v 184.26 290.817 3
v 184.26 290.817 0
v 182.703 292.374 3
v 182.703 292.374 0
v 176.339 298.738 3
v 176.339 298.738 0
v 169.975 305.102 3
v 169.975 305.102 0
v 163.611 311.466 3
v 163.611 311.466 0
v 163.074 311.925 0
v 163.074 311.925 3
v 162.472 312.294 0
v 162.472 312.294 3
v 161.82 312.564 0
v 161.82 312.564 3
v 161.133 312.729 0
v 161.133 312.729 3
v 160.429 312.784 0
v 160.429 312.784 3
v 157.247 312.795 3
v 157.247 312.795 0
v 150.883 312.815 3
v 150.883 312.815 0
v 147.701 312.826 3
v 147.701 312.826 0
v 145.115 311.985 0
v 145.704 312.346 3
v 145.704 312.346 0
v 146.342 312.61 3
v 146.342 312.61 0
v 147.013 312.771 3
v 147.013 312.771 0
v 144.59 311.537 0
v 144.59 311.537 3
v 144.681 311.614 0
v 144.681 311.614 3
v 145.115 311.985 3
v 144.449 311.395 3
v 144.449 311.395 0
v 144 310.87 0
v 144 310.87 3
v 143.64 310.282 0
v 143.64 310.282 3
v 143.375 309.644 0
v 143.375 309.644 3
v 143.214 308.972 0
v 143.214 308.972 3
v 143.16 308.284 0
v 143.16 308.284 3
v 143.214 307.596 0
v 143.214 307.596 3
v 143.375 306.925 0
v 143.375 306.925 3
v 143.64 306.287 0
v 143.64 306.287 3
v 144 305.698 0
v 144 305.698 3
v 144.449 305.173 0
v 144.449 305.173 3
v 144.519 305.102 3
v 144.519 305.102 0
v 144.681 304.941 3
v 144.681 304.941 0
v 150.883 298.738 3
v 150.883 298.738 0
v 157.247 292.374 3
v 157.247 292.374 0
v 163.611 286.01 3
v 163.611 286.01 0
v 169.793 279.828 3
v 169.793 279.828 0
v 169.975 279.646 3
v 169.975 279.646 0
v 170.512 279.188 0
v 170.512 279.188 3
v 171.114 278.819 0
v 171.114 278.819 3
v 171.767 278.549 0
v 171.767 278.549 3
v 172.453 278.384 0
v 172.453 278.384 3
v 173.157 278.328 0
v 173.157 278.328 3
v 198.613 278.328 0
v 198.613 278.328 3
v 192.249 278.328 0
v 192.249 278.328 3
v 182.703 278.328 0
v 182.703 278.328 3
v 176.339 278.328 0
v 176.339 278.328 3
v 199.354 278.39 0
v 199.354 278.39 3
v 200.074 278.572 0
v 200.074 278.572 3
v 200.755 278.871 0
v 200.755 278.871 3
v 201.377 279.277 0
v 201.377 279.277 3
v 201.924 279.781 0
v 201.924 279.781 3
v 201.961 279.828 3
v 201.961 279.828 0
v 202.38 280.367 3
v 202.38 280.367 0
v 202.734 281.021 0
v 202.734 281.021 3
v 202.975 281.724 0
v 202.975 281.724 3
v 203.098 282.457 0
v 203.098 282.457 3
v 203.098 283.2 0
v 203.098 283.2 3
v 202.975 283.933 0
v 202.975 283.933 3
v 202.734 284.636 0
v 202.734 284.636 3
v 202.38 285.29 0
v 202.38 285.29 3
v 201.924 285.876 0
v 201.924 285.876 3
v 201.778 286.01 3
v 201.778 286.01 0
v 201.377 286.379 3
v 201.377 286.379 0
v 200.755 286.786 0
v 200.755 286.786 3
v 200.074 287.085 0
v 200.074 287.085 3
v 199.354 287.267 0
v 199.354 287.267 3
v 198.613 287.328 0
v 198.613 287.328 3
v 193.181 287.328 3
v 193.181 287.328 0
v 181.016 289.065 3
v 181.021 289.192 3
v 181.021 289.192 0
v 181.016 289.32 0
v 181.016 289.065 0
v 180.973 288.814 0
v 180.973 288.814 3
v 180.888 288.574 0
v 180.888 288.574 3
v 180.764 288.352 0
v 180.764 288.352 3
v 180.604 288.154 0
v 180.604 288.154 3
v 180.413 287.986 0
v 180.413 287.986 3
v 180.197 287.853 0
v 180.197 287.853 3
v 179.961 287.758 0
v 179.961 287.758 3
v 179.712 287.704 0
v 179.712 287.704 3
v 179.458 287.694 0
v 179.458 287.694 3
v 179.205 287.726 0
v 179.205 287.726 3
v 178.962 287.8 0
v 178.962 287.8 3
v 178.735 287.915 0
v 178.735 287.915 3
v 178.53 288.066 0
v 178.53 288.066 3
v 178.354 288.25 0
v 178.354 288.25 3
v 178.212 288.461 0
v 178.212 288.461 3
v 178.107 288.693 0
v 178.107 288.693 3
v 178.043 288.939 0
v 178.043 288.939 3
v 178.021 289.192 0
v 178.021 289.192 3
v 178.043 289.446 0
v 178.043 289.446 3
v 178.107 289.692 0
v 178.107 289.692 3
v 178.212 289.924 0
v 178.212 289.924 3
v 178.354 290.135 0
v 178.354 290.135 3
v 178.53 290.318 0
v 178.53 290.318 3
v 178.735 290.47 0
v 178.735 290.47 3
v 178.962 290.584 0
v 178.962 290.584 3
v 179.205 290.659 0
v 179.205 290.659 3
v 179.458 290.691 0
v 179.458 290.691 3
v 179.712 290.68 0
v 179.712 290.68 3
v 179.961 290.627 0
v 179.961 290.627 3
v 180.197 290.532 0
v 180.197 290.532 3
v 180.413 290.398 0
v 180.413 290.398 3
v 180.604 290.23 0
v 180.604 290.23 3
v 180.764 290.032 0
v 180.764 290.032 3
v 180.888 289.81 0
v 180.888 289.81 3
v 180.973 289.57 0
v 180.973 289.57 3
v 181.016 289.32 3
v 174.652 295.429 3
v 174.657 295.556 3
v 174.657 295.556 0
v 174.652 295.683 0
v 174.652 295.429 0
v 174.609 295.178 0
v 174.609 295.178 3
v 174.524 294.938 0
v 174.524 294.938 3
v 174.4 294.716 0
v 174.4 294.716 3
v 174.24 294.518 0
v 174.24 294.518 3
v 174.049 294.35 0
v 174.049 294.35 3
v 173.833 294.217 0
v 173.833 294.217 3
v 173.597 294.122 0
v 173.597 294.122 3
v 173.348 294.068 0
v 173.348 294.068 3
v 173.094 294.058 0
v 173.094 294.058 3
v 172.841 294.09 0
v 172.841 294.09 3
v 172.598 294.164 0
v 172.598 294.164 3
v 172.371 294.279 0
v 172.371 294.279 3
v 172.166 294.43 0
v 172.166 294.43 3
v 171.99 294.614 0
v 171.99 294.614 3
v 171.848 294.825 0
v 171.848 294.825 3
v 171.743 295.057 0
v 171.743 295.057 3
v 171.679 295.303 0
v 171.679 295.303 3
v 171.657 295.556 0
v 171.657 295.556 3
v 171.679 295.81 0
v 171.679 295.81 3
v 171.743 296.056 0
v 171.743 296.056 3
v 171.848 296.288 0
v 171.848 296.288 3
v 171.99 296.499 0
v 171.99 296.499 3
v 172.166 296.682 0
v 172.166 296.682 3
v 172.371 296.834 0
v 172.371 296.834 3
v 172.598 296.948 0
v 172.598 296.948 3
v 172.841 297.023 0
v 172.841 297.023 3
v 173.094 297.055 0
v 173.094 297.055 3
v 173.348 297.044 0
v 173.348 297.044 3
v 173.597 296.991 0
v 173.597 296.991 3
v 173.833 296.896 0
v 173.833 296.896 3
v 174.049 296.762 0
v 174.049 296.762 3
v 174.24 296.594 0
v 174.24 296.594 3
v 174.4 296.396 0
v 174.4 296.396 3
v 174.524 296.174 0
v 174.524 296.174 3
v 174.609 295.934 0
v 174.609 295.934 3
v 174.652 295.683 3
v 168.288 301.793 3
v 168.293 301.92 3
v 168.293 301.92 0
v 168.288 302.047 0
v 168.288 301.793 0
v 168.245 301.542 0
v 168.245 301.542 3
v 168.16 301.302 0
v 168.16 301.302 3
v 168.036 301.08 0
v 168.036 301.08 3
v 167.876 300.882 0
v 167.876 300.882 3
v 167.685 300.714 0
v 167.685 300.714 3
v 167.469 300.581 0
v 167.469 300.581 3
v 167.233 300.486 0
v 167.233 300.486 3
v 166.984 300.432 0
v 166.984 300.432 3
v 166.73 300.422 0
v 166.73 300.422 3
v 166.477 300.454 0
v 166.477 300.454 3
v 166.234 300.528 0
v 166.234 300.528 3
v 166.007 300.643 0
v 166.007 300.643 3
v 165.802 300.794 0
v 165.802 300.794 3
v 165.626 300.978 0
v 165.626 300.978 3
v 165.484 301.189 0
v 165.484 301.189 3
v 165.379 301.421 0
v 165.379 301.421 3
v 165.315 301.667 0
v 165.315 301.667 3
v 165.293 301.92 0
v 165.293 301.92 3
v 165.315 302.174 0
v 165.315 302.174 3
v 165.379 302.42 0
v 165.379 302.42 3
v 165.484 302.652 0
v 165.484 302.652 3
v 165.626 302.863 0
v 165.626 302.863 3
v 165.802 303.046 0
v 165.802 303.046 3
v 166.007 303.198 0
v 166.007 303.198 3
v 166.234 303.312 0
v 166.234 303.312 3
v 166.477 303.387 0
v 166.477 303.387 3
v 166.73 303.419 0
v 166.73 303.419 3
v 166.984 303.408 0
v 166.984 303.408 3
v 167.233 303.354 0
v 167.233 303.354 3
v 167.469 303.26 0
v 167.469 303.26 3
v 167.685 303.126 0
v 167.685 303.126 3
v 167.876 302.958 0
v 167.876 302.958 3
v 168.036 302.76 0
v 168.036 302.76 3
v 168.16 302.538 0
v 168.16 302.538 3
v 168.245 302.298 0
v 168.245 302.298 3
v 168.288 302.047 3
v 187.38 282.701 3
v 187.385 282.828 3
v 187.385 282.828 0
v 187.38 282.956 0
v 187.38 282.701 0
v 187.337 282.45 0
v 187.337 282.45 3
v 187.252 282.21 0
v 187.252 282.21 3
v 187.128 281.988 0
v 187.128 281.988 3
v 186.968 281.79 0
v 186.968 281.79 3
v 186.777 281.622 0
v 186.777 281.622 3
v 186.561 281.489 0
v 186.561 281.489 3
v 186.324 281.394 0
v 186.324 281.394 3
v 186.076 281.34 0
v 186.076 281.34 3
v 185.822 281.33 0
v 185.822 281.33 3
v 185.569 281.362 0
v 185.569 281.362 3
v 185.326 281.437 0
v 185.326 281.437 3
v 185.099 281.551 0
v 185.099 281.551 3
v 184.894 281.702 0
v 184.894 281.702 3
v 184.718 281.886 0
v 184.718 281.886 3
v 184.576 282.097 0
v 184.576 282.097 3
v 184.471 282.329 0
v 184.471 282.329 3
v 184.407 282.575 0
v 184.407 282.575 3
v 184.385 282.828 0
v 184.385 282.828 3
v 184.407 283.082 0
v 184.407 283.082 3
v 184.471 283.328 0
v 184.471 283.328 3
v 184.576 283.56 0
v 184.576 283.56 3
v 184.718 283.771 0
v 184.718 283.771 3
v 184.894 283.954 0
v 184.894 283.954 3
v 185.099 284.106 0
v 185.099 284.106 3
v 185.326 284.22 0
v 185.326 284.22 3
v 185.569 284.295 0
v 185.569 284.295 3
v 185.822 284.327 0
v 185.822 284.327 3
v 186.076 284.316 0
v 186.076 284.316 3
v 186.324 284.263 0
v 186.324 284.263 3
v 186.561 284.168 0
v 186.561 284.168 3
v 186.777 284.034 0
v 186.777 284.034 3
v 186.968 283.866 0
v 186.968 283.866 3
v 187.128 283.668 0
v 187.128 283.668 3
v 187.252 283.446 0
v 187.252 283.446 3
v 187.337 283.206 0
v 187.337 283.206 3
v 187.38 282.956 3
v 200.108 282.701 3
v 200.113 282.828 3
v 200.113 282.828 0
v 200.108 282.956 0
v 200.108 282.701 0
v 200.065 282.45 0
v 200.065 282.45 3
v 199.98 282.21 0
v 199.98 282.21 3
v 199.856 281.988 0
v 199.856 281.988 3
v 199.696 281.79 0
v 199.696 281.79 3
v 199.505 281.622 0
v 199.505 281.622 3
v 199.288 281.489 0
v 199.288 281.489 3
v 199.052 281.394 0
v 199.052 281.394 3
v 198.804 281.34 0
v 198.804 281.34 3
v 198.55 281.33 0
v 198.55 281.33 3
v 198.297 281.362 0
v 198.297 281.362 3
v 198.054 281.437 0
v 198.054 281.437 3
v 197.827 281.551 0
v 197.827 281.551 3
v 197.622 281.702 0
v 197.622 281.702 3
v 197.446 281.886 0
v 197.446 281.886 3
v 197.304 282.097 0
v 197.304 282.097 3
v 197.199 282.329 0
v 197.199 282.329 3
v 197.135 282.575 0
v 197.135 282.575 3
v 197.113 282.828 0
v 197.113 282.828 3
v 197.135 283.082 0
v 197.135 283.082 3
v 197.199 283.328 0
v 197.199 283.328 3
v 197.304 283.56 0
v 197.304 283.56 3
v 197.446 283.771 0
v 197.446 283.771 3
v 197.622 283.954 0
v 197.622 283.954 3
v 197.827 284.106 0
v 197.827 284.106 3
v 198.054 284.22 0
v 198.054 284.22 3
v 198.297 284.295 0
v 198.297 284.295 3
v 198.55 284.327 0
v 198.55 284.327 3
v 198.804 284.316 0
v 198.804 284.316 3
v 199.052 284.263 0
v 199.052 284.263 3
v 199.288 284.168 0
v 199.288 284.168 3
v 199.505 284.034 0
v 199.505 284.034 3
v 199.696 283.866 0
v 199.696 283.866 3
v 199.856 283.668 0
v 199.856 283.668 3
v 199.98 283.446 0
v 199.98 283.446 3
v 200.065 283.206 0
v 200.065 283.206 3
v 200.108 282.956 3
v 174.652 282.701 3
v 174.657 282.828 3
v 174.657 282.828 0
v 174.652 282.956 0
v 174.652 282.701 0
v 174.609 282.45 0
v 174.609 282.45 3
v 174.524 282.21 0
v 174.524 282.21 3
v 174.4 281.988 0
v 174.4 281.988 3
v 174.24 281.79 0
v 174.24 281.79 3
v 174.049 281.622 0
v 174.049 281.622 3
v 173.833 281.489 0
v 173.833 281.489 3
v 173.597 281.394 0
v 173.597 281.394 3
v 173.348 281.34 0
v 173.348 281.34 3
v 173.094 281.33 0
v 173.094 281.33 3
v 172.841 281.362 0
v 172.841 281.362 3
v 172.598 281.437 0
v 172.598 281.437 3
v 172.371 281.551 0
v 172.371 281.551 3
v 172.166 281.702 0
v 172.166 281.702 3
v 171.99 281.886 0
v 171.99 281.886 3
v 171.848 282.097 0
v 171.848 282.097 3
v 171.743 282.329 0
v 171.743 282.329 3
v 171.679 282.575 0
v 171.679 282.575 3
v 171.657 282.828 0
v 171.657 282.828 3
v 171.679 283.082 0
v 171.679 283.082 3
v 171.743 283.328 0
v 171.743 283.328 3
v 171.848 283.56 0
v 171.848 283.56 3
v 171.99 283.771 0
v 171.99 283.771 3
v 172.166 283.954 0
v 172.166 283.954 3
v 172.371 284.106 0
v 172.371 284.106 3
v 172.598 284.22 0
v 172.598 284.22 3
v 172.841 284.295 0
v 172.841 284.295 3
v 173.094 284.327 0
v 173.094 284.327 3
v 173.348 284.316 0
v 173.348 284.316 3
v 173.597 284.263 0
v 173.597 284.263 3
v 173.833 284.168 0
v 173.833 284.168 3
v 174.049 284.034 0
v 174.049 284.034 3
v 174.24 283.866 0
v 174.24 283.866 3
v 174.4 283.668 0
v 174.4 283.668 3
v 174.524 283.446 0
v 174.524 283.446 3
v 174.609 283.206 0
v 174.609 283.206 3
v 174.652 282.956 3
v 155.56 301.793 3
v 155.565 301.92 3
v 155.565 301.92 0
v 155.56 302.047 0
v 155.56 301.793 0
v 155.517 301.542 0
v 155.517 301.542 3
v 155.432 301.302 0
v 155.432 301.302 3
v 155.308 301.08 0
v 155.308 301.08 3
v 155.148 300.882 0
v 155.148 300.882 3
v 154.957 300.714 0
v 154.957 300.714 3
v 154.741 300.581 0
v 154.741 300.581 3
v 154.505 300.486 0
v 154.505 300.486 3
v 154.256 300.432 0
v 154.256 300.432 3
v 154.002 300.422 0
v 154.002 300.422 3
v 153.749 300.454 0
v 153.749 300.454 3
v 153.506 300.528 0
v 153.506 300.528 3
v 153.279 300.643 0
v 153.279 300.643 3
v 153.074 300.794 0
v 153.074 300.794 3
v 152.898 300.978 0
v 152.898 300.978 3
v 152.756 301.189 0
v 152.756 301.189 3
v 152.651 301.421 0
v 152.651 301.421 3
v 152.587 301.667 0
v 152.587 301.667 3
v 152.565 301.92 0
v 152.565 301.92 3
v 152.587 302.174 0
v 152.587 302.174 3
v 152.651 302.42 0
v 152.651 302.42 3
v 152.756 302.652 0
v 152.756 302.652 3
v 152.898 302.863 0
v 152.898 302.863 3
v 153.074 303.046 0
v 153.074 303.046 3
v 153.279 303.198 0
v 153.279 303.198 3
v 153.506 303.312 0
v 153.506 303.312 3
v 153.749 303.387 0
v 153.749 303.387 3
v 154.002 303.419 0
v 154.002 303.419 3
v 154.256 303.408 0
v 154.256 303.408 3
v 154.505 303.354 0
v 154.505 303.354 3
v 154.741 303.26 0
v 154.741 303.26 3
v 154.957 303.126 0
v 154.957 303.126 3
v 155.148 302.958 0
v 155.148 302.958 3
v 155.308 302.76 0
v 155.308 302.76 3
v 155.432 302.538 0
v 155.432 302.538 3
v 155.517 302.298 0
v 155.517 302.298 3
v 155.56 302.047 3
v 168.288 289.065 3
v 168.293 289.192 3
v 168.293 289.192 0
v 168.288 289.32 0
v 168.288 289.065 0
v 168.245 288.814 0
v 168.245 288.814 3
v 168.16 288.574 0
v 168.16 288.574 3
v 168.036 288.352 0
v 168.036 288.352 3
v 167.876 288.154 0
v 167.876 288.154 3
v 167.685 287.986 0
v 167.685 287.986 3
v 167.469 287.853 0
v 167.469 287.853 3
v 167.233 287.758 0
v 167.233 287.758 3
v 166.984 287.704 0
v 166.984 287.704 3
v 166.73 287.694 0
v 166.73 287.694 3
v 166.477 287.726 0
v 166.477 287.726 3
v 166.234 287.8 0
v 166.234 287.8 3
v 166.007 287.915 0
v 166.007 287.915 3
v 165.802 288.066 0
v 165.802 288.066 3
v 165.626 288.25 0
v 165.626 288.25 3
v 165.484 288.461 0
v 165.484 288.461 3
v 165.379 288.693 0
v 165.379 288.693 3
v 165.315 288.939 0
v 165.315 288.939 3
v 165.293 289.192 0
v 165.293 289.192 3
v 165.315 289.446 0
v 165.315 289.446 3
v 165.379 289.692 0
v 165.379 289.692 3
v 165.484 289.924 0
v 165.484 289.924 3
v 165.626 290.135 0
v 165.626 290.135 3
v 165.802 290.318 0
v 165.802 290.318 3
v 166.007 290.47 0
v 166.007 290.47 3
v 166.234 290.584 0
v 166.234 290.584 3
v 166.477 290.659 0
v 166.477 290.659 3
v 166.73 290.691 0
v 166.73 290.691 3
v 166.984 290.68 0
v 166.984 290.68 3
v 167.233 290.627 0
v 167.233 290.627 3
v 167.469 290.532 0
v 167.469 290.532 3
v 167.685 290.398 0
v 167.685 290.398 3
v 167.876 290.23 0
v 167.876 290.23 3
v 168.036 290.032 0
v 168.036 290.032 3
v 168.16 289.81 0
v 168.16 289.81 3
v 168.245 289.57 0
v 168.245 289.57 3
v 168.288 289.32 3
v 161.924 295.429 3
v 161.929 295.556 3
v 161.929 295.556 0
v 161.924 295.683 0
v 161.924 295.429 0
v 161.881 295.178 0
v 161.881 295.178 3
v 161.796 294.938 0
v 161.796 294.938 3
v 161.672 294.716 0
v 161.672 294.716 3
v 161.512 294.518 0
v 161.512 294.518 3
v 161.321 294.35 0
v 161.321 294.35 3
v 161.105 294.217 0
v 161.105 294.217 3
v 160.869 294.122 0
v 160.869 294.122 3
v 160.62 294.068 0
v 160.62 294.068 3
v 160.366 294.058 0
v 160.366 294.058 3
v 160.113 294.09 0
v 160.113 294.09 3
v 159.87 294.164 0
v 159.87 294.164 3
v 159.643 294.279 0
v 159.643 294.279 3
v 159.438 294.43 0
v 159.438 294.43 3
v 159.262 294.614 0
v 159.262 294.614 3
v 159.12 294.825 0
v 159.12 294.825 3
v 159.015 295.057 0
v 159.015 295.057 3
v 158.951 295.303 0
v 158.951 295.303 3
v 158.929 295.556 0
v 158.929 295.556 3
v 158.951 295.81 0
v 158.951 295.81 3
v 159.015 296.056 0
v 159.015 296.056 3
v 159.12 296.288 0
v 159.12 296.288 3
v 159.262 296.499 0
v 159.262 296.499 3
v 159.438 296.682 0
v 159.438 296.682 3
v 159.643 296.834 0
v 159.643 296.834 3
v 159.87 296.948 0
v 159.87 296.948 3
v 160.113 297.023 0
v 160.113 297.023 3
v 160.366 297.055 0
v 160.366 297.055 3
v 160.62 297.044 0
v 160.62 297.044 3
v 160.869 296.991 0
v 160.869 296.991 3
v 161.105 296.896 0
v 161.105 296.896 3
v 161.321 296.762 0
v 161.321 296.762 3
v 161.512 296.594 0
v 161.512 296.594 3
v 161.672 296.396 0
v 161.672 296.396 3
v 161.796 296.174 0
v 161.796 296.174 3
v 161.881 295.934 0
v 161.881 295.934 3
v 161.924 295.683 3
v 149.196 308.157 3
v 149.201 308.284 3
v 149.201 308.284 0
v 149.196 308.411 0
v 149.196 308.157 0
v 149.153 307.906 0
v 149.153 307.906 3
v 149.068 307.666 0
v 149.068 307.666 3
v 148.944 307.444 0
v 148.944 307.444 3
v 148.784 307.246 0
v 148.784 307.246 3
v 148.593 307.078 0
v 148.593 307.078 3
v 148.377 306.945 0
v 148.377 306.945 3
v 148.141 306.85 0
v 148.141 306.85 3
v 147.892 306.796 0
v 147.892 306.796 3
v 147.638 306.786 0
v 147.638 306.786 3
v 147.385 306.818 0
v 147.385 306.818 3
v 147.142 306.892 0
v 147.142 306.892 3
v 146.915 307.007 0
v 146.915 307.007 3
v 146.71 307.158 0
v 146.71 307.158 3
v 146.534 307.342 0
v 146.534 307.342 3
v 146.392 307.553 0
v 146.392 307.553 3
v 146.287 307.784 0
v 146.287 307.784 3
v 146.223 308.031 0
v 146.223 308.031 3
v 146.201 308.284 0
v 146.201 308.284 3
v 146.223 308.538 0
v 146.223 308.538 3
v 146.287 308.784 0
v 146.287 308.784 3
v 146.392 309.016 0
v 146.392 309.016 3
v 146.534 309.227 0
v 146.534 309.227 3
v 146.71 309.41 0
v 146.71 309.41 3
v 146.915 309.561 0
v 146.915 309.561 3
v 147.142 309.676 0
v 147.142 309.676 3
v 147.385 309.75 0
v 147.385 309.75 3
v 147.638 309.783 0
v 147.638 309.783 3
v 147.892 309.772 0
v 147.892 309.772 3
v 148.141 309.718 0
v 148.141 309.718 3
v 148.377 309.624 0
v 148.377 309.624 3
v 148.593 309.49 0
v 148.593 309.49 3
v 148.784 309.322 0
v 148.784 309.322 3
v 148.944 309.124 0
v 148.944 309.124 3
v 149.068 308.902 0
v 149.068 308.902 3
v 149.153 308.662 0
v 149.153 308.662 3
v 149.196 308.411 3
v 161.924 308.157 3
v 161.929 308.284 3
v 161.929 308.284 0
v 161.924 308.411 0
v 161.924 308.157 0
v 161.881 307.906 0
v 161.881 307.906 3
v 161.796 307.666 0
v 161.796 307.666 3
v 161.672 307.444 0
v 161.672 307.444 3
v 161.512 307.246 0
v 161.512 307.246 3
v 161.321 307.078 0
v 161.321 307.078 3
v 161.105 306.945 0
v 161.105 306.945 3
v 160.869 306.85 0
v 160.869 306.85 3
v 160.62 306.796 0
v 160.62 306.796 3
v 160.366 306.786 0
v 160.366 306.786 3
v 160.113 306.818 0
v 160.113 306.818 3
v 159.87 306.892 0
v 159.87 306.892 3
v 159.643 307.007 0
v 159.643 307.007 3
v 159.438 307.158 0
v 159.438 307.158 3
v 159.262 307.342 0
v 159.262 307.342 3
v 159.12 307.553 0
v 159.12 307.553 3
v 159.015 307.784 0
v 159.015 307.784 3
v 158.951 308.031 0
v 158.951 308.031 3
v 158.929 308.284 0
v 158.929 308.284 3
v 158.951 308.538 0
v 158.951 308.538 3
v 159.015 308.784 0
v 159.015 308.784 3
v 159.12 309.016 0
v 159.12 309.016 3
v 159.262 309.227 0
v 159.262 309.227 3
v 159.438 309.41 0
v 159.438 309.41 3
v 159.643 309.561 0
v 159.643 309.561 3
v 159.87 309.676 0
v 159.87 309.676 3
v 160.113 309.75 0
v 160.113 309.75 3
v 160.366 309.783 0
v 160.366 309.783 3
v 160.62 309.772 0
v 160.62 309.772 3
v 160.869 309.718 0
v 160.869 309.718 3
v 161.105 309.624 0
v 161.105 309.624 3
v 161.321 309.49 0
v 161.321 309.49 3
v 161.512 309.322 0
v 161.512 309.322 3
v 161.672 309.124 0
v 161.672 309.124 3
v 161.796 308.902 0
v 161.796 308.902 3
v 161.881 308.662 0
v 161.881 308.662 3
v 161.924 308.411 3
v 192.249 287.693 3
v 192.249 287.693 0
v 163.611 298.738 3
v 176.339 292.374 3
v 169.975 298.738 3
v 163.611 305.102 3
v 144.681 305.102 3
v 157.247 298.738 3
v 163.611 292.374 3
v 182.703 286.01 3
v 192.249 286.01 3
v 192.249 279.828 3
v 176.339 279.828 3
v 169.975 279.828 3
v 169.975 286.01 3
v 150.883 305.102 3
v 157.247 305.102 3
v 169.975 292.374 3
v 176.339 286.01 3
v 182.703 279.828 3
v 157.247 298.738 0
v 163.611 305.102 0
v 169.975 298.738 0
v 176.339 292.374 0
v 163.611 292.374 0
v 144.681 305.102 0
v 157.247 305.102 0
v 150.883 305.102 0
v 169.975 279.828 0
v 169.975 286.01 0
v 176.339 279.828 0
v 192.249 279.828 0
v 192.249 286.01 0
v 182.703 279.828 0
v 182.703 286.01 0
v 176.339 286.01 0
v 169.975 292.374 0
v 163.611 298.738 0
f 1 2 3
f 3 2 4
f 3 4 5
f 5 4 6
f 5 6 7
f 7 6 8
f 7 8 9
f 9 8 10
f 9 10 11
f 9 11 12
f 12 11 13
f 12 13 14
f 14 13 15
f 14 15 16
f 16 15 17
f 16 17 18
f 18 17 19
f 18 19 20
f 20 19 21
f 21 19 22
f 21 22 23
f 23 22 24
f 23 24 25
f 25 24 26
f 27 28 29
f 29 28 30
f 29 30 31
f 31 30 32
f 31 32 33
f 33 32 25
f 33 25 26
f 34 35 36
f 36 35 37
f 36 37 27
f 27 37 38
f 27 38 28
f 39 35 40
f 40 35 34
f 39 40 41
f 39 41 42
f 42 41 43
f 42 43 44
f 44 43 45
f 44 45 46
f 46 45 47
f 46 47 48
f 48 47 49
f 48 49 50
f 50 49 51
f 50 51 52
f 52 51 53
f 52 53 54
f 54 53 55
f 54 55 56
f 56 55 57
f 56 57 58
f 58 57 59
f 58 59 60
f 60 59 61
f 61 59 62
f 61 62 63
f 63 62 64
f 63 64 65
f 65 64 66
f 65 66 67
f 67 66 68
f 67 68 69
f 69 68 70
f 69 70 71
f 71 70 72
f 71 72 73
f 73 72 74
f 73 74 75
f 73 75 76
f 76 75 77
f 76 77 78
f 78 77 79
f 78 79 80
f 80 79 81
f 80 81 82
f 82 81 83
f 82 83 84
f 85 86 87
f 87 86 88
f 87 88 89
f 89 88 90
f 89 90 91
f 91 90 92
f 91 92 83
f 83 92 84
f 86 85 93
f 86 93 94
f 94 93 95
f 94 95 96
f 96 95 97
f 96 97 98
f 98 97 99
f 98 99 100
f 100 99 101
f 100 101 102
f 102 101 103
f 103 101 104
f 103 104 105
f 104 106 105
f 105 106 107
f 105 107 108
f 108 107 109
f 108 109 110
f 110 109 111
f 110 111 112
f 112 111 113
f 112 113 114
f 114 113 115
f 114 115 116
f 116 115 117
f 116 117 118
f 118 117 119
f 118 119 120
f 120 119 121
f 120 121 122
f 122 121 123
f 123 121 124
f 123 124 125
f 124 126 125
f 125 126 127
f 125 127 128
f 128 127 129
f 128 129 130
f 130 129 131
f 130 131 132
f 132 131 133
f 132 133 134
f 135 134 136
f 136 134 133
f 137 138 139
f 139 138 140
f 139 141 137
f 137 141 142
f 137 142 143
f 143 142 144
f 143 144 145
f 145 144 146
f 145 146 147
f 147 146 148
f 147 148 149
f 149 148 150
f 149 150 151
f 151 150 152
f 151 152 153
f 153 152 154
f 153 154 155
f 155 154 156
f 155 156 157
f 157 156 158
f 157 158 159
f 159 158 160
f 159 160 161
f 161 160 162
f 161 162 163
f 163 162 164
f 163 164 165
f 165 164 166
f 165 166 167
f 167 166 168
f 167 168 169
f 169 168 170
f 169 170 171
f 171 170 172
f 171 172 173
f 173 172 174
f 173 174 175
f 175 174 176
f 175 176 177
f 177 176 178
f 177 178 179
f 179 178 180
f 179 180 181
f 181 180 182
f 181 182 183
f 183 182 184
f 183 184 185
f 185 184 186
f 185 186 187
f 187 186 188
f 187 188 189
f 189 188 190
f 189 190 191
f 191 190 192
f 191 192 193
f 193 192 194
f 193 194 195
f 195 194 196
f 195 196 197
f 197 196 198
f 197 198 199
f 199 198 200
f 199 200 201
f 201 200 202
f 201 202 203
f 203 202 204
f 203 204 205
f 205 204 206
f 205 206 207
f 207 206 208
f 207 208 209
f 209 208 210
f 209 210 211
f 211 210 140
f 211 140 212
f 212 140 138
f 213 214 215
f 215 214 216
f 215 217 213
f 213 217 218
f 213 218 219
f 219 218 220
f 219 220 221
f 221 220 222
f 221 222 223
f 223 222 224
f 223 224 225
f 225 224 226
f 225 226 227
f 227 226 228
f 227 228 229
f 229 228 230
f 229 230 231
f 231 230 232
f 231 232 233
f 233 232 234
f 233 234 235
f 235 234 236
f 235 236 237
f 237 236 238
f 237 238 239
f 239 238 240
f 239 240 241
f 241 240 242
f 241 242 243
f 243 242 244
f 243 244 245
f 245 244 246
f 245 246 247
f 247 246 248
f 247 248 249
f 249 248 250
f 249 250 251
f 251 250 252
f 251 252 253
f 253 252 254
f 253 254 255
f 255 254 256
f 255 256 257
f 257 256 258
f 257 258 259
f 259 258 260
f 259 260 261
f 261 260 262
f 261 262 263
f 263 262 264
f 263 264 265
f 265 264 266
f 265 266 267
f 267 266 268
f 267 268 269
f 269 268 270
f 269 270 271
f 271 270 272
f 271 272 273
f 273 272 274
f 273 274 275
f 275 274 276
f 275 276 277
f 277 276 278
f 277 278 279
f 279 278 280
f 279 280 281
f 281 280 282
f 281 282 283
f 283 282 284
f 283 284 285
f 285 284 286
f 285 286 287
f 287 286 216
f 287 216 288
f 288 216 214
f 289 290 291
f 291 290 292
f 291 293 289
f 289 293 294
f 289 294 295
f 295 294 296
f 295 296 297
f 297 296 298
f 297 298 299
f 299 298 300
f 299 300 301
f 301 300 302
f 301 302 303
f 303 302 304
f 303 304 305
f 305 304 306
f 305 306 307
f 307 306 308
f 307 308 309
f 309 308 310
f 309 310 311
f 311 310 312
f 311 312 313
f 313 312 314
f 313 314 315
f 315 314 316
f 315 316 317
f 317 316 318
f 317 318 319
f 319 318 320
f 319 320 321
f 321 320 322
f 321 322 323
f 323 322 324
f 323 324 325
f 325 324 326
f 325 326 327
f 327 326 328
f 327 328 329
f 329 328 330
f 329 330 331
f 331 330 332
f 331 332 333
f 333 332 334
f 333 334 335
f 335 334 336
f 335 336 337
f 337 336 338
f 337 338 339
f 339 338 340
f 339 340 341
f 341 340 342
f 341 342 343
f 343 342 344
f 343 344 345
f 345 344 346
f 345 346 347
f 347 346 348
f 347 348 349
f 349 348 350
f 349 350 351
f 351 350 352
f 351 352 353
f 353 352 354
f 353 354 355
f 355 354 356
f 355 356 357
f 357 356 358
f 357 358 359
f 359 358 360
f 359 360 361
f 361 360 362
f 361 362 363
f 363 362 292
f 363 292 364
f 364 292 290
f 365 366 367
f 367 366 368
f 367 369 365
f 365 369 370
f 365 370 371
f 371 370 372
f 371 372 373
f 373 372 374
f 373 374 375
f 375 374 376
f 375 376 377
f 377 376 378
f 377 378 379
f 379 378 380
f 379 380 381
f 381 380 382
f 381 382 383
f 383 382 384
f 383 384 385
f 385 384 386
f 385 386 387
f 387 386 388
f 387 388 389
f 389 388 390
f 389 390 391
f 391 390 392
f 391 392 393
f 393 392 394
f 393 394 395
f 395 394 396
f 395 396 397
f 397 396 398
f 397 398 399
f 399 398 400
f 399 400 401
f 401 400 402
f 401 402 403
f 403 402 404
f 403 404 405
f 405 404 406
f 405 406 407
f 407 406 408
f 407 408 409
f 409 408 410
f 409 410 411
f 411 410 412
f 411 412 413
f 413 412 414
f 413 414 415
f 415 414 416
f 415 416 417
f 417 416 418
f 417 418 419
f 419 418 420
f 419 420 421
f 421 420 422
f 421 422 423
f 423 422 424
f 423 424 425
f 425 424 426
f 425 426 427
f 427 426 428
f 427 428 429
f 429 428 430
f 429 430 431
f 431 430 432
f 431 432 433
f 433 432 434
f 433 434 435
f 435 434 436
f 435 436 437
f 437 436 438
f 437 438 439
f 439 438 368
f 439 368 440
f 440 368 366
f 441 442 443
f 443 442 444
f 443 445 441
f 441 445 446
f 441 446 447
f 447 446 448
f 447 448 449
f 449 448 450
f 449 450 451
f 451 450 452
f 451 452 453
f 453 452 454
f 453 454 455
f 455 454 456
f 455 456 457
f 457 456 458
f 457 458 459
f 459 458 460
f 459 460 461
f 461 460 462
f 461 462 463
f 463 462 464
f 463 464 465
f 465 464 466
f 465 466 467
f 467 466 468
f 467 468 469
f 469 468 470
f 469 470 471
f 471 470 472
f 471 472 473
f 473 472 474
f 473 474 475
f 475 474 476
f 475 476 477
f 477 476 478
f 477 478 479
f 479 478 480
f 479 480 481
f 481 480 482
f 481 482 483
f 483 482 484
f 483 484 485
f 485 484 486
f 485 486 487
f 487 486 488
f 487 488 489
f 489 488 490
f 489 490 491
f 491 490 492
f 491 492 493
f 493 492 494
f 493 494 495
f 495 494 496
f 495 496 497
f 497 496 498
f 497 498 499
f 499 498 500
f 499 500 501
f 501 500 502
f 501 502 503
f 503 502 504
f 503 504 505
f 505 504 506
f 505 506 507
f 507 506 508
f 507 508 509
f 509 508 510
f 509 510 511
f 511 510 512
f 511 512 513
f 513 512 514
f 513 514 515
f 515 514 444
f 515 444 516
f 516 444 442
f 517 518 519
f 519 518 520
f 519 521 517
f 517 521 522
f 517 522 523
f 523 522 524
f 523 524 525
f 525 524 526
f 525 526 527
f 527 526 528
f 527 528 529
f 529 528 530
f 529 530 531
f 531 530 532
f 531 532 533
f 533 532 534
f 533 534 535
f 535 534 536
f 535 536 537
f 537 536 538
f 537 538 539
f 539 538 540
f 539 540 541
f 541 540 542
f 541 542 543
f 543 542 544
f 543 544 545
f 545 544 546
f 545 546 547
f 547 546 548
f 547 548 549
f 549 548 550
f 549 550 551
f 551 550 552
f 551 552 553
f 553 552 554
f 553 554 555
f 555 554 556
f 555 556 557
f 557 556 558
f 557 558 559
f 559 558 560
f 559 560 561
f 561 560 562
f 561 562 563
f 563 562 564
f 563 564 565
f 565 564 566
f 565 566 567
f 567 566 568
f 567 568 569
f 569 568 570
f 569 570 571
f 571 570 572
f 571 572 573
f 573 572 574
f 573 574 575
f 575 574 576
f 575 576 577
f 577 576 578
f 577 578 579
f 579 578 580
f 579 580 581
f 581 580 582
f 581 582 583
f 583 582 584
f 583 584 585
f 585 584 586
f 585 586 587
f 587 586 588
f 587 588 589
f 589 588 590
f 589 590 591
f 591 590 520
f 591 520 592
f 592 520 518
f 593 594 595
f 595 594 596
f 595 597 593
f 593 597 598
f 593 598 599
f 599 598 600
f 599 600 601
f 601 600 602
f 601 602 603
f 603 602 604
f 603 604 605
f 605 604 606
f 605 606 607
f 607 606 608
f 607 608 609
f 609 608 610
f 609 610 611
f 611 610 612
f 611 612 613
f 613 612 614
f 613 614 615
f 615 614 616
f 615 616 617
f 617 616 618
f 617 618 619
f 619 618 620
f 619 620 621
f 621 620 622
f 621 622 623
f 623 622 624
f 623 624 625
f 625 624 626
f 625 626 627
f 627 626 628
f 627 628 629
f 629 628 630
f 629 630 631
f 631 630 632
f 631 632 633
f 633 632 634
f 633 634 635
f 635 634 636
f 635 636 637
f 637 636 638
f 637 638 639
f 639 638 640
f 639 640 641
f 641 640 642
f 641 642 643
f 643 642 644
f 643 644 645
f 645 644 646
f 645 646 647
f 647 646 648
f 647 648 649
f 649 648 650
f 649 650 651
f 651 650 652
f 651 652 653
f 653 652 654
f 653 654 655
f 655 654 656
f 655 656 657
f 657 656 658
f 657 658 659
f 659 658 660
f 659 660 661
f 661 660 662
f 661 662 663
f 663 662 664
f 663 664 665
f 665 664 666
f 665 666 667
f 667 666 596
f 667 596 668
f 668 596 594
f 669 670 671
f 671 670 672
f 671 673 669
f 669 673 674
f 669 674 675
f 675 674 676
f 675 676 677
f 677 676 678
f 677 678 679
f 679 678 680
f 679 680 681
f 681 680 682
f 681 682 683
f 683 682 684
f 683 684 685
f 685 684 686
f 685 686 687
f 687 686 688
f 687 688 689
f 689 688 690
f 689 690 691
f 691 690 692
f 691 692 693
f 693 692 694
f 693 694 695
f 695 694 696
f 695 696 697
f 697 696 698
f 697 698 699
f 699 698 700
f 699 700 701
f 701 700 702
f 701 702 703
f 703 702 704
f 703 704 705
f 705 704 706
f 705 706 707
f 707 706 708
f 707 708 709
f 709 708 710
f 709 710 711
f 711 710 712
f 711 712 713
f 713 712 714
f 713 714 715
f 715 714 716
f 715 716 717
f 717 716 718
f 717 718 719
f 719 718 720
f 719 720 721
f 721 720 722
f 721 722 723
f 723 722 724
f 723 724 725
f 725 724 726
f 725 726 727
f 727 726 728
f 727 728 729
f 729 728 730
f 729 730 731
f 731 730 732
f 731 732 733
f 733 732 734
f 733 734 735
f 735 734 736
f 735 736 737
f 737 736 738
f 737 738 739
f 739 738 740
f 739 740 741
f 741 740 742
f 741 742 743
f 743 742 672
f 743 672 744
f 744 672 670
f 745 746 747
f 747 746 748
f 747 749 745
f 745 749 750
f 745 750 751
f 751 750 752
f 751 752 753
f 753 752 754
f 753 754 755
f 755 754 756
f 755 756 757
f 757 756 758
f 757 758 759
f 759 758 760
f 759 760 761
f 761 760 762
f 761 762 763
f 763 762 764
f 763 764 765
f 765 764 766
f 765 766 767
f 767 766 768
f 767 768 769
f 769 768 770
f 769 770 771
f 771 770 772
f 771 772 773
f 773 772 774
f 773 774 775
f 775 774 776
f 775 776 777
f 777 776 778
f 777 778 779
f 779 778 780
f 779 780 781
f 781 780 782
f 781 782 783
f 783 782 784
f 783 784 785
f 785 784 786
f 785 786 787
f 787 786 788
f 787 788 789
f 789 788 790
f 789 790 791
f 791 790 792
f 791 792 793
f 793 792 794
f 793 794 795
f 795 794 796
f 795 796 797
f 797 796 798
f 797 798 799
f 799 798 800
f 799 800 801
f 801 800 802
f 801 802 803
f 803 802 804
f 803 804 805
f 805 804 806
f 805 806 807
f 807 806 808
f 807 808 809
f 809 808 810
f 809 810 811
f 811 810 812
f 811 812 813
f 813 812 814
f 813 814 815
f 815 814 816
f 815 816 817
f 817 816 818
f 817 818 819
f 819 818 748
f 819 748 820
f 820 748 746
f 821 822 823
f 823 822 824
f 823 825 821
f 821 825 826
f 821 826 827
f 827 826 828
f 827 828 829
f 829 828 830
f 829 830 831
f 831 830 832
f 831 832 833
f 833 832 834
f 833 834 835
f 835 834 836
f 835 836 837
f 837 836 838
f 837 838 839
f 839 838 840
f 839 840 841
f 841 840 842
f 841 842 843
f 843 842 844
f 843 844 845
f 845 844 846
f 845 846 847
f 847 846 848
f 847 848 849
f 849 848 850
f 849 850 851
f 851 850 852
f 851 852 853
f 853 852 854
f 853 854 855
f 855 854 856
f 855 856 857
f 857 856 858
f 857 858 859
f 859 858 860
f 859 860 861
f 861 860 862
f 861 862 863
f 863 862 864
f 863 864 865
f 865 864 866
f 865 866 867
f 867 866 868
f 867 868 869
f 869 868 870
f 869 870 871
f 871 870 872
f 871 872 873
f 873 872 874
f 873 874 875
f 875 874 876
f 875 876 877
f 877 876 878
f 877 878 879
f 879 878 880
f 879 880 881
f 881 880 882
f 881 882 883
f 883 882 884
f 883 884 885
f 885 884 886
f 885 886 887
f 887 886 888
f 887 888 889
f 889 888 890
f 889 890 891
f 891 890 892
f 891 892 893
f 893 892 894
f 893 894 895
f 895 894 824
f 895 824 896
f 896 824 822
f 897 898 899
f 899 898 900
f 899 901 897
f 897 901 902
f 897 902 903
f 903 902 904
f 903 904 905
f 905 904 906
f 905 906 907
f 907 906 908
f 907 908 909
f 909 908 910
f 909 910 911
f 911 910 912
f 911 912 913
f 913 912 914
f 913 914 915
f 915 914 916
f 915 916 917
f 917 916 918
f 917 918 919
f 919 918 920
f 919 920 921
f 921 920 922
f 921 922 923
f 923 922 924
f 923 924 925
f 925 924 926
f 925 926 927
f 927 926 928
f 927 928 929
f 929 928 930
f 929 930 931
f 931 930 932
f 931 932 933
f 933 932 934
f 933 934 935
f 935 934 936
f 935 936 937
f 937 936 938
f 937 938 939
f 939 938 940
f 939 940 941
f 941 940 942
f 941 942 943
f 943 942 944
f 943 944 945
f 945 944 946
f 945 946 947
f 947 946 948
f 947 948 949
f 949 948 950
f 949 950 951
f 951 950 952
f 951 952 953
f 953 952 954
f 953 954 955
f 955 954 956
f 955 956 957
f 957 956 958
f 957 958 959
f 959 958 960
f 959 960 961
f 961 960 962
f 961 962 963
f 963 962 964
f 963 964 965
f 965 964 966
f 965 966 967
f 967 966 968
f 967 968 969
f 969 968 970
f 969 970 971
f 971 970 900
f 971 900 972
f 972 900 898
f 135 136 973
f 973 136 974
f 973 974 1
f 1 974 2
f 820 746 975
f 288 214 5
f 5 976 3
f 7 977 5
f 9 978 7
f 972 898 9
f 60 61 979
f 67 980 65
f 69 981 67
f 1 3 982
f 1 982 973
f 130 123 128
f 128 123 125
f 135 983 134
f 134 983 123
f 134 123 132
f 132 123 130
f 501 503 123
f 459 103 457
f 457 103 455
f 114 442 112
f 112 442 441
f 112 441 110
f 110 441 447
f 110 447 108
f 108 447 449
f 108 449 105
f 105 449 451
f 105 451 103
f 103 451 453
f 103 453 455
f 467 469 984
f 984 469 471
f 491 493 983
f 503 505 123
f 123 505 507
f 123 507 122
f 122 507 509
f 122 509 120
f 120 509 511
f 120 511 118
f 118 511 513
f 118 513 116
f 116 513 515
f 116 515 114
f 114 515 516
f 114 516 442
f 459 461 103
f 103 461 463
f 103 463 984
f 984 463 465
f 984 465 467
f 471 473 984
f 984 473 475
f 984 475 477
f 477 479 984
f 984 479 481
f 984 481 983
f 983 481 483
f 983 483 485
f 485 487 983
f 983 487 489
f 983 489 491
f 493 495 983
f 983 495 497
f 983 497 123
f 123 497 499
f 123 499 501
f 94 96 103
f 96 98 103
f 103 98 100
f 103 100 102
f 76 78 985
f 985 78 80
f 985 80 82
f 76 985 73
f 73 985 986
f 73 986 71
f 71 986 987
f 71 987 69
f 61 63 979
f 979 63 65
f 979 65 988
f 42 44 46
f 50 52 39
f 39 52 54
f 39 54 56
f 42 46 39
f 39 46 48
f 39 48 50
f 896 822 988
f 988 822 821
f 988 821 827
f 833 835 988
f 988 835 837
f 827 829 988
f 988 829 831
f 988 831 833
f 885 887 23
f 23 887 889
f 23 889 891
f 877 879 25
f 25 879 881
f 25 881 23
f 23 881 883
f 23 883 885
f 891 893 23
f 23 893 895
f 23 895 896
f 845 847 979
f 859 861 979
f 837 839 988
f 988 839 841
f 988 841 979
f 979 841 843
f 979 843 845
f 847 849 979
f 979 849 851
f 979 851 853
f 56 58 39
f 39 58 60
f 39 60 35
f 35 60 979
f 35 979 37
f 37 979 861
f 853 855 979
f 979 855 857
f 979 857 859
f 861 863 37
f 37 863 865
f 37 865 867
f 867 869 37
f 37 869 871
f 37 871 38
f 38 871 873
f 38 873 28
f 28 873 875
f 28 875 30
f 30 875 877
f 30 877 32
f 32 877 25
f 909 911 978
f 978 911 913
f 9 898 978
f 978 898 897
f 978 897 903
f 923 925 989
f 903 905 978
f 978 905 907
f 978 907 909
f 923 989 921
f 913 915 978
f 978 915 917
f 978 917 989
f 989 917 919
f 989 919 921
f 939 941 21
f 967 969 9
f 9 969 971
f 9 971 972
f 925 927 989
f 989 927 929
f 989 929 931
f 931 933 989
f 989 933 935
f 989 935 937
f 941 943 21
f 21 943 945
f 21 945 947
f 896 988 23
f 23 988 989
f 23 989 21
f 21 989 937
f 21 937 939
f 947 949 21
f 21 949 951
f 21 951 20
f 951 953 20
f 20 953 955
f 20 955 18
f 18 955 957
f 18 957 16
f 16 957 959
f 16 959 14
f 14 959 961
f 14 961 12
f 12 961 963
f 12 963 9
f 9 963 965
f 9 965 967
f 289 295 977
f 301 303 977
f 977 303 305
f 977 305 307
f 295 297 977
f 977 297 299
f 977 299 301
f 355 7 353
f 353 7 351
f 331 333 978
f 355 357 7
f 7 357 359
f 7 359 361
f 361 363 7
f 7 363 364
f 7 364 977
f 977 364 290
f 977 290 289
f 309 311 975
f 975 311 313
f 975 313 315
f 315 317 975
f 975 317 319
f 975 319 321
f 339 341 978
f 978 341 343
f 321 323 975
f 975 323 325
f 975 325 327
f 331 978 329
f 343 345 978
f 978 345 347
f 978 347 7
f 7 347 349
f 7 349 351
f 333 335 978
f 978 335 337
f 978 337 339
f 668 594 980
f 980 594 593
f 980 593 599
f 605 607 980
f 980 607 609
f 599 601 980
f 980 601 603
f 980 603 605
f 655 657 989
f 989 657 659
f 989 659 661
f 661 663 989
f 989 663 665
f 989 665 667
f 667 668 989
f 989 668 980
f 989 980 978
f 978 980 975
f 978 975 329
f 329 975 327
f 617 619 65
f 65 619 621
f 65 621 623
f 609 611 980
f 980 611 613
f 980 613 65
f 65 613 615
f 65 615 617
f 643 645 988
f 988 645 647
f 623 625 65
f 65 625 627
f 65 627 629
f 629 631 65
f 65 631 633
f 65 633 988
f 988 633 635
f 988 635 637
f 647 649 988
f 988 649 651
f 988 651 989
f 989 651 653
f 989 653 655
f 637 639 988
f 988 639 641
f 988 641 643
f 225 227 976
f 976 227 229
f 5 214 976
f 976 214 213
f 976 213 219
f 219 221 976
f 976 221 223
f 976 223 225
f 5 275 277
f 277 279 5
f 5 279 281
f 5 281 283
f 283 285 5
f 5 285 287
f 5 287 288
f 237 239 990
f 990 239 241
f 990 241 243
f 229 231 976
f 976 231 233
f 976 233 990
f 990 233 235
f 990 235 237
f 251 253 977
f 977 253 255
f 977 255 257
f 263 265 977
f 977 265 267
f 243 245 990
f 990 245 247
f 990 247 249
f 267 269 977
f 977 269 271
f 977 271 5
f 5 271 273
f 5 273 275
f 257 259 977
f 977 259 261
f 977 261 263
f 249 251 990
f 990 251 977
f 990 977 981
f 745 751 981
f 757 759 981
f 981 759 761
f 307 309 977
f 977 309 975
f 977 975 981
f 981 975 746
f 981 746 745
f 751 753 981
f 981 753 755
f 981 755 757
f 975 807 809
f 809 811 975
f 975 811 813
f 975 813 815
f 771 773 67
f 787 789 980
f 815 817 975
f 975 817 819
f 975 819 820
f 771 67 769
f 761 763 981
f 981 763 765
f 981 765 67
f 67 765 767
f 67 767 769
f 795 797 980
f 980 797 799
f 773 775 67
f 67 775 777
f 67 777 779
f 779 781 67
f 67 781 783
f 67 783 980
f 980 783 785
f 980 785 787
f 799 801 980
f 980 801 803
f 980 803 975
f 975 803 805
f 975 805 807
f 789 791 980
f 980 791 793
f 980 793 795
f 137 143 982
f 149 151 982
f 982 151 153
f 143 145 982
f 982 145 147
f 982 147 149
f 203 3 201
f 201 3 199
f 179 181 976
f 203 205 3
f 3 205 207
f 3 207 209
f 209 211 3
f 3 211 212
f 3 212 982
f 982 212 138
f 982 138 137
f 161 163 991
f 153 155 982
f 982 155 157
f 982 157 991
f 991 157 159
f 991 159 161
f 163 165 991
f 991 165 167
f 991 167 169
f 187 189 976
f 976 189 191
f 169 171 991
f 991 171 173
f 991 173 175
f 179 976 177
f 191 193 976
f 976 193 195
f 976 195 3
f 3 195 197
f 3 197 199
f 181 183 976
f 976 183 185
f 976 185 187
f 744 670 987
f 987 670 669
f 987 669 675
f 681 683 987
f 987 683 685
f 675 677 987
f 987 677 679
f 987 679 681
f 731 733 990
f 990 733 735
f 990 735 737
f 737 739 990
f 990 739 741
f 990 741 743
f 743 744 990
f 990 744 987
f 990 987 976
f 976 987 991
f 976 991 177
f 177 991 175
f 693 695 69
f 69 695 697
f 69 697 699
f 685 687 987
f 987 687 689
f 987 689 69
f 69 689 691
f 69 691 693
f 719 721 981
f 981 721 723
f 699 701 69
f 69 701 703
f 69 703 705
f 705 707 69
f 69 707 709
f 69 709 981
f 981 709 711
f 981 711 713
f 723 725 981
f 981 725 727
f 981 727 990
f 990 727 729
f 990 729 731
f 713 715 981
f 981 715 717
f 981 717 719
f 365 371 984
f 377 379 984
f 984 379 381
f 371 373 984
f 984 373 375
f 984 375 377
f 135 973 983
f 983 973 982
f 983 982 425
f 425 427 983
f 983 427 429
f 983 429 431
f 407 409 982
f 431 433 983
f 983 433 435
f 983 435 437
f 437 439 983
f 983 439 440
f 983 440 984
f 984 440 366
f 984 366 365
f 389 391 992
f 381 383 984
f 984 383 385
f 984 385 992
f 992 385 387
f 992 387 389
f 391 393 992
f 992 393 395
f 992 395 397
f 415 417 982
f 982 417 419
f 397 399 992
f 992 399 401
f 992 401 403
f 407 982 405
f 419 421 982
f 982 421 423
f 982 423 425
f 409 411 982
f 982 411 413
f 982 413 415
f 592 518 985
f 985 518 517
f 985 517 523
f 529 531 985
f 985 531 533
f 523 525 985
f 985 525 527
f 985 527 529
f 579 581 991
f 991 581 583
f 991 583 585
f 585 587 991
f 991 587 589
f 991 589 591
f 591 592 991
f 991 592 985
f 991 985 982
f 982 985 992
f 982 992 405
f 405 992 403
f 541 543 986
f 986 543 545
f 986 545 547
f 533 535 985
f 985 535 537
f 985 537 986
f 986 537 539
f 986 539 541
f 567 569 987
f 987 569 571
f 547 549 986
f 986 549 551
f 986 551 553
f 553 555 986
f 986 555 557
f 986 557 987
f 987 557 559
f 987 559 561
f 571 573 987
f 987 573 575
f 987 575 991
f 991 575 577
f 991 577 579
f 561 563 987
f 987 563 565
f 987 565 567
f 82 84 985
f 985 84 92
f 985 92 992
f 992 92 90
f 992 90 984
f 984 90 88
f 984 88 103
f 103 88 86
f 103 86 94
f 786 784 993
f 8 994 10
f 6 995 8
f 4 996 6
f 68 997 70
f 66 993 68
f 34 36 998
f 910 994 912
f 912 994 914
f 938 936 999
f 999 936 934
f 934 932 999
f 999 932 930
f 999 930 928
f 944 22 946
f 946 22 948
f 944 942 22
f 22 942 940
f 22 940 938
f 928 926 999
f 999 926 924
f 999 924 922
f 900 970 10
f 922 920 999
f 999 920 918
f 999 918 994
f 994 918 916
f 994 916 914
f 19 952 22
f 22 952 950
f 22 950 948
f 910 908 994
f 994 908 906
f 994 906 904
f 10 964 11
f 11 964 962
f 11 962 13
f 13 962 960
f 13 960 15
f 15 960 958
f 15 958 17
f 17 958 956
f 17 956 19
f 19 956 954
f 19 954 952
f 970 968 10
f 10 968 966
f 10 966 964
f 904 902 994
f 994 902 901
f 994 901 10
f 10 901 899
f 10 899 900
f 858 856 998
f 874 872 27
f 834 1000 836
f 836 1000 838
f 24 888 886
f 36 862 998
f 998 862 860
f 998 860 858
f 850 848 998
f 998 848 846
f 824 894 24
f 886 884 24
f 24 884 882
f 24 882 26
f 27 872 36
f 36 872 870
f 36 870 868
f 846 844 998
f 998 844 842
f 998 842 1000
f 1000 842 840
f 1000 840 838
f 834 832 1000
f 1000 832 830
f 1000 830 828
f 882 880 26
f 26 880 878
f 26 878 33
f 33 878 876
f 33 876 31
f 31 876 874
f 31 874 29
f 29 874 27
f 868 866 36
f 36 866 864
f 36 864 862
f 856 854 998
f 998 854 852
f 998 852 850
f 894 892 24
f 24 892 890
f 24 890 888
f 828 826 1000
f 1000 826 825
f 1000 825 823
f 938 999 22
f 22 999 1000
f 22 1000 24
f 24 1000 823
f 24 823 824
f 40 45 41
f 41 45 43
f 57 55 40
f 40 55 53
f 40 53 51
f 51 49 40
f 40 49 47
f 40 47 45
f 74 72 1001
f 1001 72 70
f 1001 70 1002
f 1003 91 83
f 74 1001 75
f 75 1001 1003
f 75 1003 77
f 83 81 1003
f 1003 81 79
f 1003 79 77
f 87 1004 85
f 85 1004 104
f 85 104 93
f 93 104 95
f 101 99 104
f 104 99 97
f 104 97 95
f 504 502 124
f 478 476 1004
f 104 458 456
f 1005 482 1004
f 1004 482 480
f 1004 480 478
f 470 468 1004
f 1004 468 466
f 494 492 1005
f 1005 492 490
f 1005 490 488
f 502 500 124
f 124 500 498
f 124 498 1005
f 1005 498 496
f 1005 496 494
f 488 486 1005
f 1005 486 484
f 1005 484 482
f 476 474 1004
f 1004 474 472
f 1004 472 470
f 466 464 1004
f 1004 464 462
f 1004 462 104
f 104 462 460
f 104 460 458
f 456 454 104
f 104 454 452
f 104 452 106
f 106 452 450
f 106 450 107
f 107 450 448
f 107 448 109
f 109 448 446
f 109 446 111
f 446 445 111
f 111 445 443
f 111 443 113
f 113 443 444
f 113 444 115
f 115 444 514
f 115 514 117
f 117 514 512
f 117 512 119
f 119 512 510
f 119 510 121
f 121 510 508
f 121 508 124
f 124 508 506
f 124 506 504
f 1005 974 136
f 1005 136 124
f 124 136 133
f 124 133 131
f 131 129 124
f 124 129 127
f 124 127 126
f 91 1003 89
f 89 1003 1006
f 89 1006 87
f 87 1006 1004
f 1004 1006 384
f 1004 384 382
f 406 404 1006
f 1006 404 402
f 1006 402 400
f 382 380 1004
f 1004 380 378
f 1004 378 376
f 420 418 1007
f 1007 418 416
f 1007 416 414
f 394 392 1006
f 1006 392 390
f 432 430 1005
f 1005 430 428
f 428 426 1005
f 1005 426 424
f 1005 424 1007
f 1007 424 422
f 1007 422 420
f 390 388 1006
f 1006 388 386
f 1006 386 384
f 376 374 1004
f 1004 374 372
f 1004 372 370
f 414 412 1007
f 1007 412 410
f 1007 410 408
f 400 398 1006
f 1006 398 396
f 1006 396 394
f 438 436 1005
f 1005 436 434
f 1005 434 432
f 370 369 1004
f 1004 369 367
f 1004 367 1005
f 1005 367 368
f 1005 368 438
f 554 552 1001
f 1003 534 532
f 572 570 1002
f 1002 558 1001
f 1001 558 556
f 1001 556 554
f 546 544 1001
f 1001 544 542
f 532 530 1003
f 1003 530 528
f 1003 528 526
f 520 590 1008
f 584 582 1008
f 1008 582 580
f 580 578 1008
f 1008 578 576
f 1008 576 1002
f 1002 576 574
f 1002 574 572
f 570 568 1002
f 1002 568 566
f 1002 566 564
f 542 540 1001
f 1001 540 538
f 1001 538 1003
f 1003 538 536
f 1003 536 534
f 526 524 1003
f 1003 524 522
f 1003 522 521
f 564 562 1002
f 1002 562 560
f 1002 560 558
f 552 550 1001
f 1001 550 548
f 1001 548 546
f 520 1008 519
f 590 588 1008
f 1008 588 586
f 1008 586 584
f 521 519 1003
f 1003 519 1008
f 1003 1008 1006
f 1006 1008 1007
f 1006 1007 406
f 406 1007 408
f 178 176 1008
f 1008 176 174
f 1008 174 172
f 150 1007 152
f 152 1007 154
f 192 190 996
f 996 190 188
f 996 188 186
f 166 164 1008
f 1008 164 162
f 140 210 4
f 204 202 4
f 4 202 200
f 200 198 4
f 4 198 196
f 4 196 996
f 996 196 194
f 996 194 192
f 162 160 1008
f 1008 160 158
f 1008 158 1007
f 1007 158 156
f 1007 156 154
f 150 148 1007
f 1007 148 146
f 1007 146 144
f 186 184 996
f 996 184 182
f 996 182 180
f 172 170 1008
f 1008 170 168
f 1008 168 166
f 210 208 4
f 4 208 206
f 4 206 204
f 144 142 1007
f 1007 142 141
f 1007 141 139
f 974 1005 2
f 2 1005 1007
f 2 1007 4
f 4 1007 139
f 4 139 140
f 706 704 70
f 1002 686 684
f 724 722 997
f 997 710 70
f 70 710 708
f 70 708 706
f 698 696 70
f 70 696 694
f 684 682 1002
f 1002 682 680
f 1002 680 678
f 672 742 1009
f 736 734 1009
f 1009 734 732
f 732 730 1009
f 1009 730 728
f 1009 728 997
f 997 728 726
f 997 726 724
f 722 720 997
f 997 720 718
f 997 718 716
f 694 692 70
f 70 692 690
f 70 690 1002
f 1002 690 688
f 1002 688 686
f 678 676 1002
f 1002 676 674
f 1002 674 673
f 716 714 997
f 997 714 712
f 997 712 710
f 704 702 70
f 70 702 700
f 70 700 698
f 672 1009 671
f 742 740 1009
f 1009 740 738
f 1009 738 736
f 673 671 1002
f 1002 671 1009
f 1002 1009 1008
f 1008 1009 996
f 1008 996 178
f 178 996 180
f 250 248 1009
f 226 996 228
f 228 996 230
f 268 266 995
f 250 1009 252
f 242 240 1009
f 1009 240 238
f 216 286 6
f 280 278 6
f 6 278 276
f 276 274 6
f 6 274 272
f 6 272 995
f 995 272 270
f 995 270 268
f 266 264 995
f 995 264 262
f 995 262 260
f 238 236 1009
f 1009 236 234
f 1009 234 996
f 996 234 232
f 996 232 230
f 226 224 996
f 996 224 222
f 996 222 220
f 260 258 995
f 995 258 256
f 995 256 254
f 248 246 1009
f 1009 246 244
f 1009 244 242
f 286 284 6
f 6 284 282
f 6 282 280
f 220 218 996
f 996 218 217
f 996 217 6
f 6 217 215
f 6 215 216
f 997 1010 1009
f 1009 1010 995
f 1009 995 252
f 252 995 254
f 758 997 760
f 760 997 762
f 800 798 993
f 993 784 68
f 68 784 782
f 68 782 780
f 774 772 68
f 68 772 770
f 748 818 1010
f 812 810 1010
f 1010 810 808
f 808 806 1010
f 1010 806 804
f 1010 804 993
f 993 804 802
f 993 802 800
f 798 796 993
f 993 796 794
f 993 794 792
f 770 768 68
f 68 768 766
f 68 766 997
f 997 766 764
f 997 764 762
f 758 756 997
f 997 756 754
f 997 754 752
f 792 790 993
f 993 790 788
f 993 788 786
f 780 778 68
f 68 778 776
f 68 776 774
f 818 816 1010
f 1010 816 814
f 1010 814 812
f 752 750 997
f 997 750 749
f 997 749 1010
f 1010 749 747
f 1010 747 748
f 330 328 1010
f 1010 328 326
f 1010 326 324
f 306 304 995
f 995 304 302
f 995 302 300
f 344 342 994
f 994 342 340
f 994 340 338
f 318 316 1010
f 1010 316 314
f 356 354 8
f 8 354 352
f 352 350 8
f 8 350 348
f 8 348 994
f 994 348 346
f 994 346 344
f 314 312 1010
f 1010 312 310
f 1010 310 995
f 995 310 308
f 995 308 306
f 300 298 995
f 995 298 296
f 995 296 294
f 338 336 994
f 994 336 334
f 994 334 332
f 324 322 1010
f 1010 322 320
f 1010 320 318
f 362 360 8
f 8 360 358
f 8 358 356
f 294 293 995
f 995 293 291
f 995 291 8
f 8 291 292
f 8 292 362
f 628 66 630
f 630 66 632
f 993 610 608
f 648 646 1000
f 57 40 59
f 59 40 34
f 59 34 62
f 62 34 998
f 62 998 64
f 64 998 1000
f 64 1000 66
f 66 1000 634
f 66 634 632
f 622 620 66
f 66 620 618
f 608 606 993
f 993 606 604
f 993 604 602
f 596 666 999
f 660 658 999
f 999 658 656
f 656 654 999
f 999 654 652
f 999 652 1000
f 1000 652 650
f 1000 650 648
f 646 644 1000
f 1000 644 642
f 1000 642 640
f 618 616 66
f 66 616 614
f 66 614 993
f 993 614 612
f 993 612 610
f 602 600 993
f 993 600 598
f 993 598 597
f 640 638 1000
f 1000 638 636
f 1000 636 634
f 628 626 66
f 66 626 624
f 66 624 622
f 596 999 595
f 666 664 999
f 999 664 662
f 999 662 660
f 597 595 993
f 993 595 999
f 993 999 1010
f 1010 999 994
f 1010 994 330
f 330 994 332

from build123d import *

# Parameters (mm, degrees)
MODEL_R                 = 1.5
SALIENTE_EXTRUIR1_DEPTH = 3


with BuildPart() as part:
    # Model → Saliente-Extruir1 (new body)
    with BuildSketch(Plane.XY):
        with BuildLine():
            Line((198.613156537, 287.328333228), (193.181176022, 287.328333228))
            Line((193.181176022, 287.328333228), (184.260234476, 290.817294259))
            Line((184.260234476, 290.817294259), (163.611370869, 311.466157866))
            ThreePointArc((163.611370869, 311.466157866), (162.151465799, 312.441635247), (160.429390353, 312.784177351))
            Line((160.429390353, 312.784177351), (147.730106437, 312.825505508))
            Line((147.730106437, 312.825505508), (147.701468292, 312.825598707))
            ThreePointArc((147.701468292, 312.825598707), (146.01766119, 312.49066865), (144.590198455, 311.536868544))
            Line((144.590198455, 311.536868544), (144.448777098, 311.395447188))
            ThreePointArc((144.448777098, 311.395447188), (143.160046936, 308.284177351), (144.448777098, 305.172907513))
            Line((144.448777098, 305.172907513), (169.975331899, 279.646352713))
            ThreePointArc((169.975331899, 279.646352713), (171.435236969, 278.670875332), (173.157312415, 278.328333228))
            Line((173.157312415, 278.328333228), (198.613156537, 278.328333228))
            ThreePointArc((198.613156537, 278.328333228), (203.113156537, 282.828333228), (198.613156537, 287.328333228))
        make_face()
        with Locations((166.793351384, 289.192294259)):
            Circle(MODEL_R, mode=Mode.SUBTRACT)
        with Locations((160.429390353, 295.556255289)):
            Circle(MODEL_R, mode=Mode.SUBTRACT)
        with Locations((173.157312415, 282.828333228)):
            Circle(MODEL_R, mode=Mode.SUBTRACT)
        with Locations((185.885234476, 282.828333228)):
            Circle(MODEL_R, mode=Mode.SUBTRACT)
        with Locations((198.613156537, 282.828333228)):
            Circle(MODEL_R, mode=Mode.SUBTRACT)
        with Locations((179.521273445, 289.192294259)):
            Circle(MODEL_R, mode=Mode.SUBTRACT)
        with Locations((173.157312415, 295.556255289)):
            Circle(MODEL_R, mode=Mode.SUBTRACT)
        with Locations((154.065429323, 301.92021632)):
            Circle(MODEL_R, mode=Mode.SUBTRACT)
        with Locations((166.793351384, 301.92021632)):
            Circle(MODEL_R, mode=Mode.SUBTRACT)
        with Locations((147.701468292, 308.284177351)):
            Circle(MODEL_R, mode=Mode.SUBTRACT)
        with Locations((160.429390353, 308.284177351)):
            Circle(MODEL_R, mode=Mode.SUBTRACT)
    extrude(amount=SALIENTE_EXTRUIR1_DEPTH)


solid = part.part
